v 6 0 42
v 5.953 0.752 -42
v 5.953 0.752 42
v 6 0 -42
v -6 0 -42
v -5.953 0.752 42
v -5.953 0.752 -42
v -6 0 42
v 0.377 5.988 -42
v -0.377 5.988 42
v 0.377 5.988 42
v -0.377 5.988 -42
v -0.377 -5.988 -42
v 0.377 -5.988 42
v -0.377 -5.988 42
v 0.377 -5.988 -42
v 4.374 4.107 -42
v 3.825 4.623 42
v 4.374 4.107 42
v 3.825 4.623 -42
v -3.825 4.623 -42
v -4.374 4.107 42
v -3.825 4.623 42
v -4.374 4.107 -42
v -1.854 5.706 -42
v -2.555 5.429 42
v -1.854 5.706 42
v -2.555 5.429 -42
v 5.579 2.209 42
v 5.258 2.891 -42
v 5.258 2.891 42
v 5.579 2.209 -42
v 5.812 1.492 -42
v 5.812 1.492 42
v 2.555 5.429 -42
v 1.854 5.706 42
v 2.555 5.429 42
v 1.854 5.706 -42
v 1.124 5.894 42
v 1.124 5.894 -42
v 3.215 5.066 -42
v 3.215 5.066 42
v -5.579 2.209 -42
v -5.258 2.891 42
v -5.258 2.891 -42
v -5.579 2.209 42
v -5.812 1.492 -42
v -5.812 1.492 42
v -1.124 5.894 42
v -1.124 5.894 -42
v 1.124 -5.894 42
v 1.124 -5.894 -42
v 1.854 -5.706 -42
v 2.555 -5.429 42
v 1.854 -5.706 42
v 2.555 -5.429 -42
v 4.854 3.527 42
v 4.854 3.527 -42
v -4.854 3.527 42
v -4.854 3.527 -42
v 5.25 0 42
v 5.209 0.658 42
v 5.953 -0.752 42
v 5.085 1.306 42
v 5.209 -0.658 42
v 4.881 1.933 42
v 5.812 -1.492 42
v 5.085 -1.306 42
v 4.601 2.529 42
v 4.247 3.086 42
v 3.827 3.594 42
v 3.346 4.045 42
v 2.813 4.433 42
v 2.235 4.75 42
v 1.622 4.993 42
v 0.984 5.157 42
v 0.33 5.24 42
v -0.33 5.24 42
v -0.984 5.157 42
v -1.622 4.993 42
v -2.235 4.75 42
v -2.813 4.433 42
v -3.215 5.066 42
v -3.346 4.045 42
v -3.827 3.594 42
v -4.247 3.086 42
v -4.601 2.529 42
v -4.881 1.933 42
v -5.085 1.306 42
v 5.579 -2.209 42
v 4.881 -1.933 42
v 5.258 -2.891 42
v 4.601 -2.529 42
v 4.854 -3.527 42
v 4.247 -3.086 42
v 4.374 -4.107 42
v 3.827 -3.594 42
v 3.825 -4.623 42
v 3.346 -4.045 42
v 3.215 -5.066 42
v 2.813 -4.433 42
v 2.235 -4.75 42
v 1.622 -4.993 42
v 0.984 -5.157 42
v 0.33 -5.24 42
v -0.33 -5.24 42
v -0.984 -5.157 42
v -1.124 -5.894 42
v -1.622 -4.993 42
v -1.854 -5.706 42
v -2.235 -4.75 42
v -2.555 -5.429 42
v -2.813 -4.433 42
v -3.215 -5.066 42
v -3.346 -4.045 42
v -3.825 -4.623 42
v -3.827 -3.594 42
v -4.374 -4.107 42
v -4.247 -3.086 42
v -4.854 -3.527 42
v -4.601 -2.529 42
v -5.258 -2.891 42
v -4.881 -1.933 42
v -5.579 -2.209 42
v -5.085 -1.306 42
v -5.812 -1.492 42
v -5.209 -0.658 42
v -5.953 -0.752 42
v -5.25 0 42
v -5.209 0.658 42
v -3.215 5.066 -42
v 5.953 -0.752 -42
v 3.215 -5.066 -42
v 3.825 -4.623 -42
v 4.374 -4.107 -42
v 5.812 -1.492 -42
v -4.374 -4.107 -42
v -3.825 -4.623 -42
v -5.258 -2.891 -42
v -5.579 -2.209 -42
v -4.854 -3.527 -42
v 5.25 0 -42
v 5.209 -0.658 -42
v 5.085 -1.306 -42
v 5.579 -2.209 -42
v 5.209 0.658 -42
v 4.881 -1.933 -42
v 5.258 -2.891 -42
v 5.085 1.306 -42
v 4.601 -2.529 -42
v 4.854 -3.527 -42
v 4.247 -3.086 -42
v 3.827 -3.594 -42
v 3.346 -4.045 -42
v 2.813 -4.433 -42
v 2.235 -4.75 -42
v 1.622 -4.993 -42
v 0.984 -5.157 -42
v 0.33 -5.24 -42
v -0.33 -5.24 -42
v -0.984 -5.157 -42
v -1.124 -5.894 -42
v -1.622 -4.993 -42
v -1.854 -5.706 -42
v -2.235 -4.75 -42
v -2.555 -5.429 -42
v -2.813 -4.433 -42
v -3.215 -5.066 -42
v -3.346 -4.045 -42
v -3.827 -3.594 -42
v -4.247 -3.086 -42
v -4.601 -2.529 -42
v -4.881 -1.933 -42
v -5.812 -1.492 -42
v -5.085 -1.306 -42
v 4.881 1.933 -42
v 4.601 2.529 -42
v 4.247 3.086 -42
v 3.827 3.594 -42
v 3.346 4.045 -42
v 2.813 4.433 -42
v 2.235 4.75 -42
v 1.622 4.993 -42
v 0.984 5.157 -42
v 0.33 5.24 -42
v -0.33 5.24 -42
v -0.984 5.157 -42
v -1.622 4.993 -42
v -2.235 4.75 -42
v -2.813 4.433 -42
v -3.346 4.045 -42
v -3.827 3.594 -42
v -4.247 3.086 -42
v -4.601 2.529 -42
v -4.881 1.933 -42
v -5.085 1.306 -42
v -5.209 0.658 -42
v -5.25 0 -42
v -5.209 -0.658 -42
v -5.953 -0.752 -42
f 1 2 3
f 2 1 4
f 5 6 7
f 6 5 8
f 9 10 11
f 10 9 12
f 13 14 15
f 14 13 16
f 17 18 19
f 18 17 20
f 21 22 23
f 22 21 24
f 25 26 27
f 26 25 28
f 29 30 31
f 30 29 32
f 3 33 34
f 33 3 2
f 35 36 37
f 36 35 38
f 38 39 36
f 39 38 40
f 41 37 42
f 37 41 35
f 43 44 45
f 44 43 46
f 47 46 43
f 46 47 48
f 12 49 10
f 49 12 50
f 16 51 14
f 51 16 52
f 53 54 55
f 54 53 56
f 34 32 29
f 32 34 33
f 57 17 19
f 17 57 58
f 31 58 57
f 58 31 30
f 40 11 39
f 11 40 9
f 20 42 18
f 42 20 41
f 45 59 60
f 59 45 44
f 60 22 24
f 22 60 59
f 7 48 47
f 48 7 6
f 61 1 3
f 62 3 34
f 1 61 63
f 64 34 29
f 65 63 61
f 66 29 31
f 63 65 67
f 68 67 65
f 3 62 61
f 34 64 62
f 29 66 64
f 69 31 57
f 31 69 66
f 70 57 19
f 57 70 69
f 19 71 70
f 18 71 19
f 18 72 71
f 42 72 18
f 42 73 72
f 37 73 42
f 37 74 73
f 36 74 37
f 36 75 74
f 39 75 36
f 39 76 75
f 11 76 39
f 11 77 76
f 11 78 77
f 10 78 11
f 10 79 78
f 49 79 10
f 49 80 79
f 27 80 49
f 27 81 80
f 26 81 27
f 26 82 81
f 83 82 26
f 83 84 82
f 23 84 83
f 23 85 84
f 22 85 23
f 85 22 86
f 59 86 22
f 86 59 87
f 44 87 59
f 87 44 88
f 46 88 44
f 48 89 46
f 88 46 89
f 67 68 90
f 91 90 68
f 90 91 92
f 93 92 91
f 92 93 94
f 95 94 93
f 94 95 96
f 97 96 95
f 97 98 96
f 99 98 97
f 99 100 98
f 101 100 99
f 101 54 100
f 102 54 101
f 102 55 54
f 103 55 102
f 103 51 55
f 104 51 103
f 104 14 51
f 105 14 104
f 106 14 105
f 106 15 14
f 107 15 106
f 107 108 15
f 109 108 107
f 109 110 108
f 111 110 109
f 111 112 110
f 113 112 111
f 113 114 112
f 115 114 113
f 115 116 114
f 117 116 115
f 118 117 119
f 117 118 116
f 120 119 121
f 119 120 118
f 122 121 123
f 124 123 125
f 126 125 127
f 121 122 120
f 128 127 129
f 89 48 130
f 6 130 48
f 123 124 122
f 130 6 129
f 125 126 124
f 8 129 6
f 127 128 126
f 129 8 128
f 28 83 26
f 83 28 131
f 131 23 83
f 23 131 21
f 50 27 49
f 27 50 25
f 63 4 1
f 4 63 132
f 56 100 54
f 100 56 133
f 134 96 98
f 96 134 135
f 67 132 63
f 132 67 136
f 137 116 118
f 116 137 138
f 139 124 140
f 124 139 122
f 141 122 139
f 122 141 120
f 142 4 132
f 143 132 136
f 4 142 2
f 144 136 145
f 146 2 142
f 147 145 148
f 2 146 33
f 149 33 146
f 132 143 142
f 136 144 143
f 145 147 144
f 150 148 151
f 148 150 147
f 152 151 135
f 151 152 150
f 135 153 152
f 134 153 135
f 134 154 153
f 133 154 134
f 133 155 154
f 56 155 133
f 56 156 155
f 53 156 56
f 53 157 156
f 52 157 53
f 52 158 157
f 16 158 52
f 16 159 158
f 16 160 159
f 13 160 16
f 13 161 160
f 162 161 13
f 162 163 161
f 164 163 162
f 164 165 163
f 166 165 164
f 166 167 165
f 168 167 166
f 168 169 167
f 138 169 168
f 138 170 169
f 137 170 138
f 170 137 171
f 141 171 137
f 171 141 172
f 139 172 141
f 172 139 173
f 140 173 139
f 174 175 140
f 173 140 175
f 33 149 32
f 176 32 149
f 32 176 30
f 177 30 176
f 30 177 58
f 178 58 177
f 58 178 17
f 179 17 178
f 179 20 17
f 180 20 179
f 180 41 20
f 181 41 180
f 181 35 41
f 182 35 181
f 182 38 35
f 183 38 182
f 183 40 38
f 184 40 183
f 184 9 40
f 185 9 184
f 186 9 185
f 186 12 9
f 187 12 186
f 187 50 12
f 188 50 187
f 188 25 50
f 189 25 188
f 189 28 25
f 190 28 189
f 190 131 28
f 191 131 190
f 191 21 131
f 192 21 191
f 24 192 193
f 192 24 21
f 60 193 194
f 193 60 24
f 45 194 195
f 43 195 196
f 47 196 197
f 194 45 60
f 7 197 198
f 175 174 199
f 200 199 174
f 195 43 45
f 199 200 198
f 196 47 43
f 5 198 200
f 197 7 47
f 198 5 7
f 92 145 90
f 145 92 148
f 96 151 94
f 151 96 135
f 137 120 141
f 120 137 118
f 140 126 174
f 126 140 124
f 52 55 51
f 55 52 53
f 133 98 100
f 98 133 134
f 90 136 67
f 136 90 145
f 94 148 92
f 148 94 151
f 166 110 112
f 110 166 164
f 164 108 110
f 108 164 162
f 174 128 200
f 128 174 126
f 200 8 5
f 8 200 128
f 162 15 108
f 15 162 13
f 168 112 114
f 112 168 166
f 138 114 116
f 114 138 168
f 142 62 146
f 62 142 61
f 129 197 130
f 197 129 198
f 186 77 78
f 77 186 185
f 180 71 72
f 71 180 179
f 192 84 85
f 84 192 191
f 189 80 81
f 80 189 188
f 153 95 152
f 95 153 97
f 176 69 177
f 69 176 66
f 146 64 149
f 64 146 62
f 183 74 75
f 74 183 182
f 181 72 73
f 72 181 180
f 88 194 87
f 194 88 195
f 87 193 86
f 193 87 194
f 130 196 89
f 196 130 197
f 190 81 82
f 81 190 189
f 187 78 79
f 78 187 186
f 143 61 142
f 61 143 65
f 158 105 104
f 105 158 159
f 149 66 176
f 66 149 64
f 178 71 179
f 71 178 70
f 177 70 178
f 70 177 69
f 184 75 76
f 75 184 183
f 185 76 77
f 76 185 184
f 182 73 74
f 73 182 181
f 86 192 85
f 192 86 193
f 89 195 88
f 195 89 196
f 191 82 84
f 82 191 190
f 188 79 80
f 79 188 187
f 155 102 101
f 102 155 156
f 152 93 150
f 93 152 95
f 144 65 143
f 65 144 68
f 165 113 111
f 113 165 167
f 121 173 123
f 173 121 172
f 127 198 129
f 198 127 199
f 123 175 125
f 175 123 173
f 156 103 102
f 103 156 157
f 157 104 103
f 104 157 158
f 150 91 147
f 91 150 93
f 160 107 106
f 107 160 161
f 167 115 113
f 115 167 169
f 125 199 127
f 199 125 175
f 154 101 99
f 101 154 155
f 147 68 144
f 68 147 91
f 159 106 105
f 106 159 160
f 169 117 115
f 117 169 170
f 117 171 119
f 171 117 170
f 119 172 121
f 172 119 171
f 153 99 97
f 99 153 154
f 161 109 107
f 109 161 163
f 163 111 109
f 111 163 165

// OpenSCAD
$fn = 50;


difference() {
	union() {
		translate(v = [0, 0, -42.0000000000]) {
			cylinder(h = 84, r = 6.0000000000);
		}
	}
	union() {
		translate(v = [0, 0, -100.0000000000]) {
			cylinder(h = 200, r = 5.2500000000);
		}
	}
}
